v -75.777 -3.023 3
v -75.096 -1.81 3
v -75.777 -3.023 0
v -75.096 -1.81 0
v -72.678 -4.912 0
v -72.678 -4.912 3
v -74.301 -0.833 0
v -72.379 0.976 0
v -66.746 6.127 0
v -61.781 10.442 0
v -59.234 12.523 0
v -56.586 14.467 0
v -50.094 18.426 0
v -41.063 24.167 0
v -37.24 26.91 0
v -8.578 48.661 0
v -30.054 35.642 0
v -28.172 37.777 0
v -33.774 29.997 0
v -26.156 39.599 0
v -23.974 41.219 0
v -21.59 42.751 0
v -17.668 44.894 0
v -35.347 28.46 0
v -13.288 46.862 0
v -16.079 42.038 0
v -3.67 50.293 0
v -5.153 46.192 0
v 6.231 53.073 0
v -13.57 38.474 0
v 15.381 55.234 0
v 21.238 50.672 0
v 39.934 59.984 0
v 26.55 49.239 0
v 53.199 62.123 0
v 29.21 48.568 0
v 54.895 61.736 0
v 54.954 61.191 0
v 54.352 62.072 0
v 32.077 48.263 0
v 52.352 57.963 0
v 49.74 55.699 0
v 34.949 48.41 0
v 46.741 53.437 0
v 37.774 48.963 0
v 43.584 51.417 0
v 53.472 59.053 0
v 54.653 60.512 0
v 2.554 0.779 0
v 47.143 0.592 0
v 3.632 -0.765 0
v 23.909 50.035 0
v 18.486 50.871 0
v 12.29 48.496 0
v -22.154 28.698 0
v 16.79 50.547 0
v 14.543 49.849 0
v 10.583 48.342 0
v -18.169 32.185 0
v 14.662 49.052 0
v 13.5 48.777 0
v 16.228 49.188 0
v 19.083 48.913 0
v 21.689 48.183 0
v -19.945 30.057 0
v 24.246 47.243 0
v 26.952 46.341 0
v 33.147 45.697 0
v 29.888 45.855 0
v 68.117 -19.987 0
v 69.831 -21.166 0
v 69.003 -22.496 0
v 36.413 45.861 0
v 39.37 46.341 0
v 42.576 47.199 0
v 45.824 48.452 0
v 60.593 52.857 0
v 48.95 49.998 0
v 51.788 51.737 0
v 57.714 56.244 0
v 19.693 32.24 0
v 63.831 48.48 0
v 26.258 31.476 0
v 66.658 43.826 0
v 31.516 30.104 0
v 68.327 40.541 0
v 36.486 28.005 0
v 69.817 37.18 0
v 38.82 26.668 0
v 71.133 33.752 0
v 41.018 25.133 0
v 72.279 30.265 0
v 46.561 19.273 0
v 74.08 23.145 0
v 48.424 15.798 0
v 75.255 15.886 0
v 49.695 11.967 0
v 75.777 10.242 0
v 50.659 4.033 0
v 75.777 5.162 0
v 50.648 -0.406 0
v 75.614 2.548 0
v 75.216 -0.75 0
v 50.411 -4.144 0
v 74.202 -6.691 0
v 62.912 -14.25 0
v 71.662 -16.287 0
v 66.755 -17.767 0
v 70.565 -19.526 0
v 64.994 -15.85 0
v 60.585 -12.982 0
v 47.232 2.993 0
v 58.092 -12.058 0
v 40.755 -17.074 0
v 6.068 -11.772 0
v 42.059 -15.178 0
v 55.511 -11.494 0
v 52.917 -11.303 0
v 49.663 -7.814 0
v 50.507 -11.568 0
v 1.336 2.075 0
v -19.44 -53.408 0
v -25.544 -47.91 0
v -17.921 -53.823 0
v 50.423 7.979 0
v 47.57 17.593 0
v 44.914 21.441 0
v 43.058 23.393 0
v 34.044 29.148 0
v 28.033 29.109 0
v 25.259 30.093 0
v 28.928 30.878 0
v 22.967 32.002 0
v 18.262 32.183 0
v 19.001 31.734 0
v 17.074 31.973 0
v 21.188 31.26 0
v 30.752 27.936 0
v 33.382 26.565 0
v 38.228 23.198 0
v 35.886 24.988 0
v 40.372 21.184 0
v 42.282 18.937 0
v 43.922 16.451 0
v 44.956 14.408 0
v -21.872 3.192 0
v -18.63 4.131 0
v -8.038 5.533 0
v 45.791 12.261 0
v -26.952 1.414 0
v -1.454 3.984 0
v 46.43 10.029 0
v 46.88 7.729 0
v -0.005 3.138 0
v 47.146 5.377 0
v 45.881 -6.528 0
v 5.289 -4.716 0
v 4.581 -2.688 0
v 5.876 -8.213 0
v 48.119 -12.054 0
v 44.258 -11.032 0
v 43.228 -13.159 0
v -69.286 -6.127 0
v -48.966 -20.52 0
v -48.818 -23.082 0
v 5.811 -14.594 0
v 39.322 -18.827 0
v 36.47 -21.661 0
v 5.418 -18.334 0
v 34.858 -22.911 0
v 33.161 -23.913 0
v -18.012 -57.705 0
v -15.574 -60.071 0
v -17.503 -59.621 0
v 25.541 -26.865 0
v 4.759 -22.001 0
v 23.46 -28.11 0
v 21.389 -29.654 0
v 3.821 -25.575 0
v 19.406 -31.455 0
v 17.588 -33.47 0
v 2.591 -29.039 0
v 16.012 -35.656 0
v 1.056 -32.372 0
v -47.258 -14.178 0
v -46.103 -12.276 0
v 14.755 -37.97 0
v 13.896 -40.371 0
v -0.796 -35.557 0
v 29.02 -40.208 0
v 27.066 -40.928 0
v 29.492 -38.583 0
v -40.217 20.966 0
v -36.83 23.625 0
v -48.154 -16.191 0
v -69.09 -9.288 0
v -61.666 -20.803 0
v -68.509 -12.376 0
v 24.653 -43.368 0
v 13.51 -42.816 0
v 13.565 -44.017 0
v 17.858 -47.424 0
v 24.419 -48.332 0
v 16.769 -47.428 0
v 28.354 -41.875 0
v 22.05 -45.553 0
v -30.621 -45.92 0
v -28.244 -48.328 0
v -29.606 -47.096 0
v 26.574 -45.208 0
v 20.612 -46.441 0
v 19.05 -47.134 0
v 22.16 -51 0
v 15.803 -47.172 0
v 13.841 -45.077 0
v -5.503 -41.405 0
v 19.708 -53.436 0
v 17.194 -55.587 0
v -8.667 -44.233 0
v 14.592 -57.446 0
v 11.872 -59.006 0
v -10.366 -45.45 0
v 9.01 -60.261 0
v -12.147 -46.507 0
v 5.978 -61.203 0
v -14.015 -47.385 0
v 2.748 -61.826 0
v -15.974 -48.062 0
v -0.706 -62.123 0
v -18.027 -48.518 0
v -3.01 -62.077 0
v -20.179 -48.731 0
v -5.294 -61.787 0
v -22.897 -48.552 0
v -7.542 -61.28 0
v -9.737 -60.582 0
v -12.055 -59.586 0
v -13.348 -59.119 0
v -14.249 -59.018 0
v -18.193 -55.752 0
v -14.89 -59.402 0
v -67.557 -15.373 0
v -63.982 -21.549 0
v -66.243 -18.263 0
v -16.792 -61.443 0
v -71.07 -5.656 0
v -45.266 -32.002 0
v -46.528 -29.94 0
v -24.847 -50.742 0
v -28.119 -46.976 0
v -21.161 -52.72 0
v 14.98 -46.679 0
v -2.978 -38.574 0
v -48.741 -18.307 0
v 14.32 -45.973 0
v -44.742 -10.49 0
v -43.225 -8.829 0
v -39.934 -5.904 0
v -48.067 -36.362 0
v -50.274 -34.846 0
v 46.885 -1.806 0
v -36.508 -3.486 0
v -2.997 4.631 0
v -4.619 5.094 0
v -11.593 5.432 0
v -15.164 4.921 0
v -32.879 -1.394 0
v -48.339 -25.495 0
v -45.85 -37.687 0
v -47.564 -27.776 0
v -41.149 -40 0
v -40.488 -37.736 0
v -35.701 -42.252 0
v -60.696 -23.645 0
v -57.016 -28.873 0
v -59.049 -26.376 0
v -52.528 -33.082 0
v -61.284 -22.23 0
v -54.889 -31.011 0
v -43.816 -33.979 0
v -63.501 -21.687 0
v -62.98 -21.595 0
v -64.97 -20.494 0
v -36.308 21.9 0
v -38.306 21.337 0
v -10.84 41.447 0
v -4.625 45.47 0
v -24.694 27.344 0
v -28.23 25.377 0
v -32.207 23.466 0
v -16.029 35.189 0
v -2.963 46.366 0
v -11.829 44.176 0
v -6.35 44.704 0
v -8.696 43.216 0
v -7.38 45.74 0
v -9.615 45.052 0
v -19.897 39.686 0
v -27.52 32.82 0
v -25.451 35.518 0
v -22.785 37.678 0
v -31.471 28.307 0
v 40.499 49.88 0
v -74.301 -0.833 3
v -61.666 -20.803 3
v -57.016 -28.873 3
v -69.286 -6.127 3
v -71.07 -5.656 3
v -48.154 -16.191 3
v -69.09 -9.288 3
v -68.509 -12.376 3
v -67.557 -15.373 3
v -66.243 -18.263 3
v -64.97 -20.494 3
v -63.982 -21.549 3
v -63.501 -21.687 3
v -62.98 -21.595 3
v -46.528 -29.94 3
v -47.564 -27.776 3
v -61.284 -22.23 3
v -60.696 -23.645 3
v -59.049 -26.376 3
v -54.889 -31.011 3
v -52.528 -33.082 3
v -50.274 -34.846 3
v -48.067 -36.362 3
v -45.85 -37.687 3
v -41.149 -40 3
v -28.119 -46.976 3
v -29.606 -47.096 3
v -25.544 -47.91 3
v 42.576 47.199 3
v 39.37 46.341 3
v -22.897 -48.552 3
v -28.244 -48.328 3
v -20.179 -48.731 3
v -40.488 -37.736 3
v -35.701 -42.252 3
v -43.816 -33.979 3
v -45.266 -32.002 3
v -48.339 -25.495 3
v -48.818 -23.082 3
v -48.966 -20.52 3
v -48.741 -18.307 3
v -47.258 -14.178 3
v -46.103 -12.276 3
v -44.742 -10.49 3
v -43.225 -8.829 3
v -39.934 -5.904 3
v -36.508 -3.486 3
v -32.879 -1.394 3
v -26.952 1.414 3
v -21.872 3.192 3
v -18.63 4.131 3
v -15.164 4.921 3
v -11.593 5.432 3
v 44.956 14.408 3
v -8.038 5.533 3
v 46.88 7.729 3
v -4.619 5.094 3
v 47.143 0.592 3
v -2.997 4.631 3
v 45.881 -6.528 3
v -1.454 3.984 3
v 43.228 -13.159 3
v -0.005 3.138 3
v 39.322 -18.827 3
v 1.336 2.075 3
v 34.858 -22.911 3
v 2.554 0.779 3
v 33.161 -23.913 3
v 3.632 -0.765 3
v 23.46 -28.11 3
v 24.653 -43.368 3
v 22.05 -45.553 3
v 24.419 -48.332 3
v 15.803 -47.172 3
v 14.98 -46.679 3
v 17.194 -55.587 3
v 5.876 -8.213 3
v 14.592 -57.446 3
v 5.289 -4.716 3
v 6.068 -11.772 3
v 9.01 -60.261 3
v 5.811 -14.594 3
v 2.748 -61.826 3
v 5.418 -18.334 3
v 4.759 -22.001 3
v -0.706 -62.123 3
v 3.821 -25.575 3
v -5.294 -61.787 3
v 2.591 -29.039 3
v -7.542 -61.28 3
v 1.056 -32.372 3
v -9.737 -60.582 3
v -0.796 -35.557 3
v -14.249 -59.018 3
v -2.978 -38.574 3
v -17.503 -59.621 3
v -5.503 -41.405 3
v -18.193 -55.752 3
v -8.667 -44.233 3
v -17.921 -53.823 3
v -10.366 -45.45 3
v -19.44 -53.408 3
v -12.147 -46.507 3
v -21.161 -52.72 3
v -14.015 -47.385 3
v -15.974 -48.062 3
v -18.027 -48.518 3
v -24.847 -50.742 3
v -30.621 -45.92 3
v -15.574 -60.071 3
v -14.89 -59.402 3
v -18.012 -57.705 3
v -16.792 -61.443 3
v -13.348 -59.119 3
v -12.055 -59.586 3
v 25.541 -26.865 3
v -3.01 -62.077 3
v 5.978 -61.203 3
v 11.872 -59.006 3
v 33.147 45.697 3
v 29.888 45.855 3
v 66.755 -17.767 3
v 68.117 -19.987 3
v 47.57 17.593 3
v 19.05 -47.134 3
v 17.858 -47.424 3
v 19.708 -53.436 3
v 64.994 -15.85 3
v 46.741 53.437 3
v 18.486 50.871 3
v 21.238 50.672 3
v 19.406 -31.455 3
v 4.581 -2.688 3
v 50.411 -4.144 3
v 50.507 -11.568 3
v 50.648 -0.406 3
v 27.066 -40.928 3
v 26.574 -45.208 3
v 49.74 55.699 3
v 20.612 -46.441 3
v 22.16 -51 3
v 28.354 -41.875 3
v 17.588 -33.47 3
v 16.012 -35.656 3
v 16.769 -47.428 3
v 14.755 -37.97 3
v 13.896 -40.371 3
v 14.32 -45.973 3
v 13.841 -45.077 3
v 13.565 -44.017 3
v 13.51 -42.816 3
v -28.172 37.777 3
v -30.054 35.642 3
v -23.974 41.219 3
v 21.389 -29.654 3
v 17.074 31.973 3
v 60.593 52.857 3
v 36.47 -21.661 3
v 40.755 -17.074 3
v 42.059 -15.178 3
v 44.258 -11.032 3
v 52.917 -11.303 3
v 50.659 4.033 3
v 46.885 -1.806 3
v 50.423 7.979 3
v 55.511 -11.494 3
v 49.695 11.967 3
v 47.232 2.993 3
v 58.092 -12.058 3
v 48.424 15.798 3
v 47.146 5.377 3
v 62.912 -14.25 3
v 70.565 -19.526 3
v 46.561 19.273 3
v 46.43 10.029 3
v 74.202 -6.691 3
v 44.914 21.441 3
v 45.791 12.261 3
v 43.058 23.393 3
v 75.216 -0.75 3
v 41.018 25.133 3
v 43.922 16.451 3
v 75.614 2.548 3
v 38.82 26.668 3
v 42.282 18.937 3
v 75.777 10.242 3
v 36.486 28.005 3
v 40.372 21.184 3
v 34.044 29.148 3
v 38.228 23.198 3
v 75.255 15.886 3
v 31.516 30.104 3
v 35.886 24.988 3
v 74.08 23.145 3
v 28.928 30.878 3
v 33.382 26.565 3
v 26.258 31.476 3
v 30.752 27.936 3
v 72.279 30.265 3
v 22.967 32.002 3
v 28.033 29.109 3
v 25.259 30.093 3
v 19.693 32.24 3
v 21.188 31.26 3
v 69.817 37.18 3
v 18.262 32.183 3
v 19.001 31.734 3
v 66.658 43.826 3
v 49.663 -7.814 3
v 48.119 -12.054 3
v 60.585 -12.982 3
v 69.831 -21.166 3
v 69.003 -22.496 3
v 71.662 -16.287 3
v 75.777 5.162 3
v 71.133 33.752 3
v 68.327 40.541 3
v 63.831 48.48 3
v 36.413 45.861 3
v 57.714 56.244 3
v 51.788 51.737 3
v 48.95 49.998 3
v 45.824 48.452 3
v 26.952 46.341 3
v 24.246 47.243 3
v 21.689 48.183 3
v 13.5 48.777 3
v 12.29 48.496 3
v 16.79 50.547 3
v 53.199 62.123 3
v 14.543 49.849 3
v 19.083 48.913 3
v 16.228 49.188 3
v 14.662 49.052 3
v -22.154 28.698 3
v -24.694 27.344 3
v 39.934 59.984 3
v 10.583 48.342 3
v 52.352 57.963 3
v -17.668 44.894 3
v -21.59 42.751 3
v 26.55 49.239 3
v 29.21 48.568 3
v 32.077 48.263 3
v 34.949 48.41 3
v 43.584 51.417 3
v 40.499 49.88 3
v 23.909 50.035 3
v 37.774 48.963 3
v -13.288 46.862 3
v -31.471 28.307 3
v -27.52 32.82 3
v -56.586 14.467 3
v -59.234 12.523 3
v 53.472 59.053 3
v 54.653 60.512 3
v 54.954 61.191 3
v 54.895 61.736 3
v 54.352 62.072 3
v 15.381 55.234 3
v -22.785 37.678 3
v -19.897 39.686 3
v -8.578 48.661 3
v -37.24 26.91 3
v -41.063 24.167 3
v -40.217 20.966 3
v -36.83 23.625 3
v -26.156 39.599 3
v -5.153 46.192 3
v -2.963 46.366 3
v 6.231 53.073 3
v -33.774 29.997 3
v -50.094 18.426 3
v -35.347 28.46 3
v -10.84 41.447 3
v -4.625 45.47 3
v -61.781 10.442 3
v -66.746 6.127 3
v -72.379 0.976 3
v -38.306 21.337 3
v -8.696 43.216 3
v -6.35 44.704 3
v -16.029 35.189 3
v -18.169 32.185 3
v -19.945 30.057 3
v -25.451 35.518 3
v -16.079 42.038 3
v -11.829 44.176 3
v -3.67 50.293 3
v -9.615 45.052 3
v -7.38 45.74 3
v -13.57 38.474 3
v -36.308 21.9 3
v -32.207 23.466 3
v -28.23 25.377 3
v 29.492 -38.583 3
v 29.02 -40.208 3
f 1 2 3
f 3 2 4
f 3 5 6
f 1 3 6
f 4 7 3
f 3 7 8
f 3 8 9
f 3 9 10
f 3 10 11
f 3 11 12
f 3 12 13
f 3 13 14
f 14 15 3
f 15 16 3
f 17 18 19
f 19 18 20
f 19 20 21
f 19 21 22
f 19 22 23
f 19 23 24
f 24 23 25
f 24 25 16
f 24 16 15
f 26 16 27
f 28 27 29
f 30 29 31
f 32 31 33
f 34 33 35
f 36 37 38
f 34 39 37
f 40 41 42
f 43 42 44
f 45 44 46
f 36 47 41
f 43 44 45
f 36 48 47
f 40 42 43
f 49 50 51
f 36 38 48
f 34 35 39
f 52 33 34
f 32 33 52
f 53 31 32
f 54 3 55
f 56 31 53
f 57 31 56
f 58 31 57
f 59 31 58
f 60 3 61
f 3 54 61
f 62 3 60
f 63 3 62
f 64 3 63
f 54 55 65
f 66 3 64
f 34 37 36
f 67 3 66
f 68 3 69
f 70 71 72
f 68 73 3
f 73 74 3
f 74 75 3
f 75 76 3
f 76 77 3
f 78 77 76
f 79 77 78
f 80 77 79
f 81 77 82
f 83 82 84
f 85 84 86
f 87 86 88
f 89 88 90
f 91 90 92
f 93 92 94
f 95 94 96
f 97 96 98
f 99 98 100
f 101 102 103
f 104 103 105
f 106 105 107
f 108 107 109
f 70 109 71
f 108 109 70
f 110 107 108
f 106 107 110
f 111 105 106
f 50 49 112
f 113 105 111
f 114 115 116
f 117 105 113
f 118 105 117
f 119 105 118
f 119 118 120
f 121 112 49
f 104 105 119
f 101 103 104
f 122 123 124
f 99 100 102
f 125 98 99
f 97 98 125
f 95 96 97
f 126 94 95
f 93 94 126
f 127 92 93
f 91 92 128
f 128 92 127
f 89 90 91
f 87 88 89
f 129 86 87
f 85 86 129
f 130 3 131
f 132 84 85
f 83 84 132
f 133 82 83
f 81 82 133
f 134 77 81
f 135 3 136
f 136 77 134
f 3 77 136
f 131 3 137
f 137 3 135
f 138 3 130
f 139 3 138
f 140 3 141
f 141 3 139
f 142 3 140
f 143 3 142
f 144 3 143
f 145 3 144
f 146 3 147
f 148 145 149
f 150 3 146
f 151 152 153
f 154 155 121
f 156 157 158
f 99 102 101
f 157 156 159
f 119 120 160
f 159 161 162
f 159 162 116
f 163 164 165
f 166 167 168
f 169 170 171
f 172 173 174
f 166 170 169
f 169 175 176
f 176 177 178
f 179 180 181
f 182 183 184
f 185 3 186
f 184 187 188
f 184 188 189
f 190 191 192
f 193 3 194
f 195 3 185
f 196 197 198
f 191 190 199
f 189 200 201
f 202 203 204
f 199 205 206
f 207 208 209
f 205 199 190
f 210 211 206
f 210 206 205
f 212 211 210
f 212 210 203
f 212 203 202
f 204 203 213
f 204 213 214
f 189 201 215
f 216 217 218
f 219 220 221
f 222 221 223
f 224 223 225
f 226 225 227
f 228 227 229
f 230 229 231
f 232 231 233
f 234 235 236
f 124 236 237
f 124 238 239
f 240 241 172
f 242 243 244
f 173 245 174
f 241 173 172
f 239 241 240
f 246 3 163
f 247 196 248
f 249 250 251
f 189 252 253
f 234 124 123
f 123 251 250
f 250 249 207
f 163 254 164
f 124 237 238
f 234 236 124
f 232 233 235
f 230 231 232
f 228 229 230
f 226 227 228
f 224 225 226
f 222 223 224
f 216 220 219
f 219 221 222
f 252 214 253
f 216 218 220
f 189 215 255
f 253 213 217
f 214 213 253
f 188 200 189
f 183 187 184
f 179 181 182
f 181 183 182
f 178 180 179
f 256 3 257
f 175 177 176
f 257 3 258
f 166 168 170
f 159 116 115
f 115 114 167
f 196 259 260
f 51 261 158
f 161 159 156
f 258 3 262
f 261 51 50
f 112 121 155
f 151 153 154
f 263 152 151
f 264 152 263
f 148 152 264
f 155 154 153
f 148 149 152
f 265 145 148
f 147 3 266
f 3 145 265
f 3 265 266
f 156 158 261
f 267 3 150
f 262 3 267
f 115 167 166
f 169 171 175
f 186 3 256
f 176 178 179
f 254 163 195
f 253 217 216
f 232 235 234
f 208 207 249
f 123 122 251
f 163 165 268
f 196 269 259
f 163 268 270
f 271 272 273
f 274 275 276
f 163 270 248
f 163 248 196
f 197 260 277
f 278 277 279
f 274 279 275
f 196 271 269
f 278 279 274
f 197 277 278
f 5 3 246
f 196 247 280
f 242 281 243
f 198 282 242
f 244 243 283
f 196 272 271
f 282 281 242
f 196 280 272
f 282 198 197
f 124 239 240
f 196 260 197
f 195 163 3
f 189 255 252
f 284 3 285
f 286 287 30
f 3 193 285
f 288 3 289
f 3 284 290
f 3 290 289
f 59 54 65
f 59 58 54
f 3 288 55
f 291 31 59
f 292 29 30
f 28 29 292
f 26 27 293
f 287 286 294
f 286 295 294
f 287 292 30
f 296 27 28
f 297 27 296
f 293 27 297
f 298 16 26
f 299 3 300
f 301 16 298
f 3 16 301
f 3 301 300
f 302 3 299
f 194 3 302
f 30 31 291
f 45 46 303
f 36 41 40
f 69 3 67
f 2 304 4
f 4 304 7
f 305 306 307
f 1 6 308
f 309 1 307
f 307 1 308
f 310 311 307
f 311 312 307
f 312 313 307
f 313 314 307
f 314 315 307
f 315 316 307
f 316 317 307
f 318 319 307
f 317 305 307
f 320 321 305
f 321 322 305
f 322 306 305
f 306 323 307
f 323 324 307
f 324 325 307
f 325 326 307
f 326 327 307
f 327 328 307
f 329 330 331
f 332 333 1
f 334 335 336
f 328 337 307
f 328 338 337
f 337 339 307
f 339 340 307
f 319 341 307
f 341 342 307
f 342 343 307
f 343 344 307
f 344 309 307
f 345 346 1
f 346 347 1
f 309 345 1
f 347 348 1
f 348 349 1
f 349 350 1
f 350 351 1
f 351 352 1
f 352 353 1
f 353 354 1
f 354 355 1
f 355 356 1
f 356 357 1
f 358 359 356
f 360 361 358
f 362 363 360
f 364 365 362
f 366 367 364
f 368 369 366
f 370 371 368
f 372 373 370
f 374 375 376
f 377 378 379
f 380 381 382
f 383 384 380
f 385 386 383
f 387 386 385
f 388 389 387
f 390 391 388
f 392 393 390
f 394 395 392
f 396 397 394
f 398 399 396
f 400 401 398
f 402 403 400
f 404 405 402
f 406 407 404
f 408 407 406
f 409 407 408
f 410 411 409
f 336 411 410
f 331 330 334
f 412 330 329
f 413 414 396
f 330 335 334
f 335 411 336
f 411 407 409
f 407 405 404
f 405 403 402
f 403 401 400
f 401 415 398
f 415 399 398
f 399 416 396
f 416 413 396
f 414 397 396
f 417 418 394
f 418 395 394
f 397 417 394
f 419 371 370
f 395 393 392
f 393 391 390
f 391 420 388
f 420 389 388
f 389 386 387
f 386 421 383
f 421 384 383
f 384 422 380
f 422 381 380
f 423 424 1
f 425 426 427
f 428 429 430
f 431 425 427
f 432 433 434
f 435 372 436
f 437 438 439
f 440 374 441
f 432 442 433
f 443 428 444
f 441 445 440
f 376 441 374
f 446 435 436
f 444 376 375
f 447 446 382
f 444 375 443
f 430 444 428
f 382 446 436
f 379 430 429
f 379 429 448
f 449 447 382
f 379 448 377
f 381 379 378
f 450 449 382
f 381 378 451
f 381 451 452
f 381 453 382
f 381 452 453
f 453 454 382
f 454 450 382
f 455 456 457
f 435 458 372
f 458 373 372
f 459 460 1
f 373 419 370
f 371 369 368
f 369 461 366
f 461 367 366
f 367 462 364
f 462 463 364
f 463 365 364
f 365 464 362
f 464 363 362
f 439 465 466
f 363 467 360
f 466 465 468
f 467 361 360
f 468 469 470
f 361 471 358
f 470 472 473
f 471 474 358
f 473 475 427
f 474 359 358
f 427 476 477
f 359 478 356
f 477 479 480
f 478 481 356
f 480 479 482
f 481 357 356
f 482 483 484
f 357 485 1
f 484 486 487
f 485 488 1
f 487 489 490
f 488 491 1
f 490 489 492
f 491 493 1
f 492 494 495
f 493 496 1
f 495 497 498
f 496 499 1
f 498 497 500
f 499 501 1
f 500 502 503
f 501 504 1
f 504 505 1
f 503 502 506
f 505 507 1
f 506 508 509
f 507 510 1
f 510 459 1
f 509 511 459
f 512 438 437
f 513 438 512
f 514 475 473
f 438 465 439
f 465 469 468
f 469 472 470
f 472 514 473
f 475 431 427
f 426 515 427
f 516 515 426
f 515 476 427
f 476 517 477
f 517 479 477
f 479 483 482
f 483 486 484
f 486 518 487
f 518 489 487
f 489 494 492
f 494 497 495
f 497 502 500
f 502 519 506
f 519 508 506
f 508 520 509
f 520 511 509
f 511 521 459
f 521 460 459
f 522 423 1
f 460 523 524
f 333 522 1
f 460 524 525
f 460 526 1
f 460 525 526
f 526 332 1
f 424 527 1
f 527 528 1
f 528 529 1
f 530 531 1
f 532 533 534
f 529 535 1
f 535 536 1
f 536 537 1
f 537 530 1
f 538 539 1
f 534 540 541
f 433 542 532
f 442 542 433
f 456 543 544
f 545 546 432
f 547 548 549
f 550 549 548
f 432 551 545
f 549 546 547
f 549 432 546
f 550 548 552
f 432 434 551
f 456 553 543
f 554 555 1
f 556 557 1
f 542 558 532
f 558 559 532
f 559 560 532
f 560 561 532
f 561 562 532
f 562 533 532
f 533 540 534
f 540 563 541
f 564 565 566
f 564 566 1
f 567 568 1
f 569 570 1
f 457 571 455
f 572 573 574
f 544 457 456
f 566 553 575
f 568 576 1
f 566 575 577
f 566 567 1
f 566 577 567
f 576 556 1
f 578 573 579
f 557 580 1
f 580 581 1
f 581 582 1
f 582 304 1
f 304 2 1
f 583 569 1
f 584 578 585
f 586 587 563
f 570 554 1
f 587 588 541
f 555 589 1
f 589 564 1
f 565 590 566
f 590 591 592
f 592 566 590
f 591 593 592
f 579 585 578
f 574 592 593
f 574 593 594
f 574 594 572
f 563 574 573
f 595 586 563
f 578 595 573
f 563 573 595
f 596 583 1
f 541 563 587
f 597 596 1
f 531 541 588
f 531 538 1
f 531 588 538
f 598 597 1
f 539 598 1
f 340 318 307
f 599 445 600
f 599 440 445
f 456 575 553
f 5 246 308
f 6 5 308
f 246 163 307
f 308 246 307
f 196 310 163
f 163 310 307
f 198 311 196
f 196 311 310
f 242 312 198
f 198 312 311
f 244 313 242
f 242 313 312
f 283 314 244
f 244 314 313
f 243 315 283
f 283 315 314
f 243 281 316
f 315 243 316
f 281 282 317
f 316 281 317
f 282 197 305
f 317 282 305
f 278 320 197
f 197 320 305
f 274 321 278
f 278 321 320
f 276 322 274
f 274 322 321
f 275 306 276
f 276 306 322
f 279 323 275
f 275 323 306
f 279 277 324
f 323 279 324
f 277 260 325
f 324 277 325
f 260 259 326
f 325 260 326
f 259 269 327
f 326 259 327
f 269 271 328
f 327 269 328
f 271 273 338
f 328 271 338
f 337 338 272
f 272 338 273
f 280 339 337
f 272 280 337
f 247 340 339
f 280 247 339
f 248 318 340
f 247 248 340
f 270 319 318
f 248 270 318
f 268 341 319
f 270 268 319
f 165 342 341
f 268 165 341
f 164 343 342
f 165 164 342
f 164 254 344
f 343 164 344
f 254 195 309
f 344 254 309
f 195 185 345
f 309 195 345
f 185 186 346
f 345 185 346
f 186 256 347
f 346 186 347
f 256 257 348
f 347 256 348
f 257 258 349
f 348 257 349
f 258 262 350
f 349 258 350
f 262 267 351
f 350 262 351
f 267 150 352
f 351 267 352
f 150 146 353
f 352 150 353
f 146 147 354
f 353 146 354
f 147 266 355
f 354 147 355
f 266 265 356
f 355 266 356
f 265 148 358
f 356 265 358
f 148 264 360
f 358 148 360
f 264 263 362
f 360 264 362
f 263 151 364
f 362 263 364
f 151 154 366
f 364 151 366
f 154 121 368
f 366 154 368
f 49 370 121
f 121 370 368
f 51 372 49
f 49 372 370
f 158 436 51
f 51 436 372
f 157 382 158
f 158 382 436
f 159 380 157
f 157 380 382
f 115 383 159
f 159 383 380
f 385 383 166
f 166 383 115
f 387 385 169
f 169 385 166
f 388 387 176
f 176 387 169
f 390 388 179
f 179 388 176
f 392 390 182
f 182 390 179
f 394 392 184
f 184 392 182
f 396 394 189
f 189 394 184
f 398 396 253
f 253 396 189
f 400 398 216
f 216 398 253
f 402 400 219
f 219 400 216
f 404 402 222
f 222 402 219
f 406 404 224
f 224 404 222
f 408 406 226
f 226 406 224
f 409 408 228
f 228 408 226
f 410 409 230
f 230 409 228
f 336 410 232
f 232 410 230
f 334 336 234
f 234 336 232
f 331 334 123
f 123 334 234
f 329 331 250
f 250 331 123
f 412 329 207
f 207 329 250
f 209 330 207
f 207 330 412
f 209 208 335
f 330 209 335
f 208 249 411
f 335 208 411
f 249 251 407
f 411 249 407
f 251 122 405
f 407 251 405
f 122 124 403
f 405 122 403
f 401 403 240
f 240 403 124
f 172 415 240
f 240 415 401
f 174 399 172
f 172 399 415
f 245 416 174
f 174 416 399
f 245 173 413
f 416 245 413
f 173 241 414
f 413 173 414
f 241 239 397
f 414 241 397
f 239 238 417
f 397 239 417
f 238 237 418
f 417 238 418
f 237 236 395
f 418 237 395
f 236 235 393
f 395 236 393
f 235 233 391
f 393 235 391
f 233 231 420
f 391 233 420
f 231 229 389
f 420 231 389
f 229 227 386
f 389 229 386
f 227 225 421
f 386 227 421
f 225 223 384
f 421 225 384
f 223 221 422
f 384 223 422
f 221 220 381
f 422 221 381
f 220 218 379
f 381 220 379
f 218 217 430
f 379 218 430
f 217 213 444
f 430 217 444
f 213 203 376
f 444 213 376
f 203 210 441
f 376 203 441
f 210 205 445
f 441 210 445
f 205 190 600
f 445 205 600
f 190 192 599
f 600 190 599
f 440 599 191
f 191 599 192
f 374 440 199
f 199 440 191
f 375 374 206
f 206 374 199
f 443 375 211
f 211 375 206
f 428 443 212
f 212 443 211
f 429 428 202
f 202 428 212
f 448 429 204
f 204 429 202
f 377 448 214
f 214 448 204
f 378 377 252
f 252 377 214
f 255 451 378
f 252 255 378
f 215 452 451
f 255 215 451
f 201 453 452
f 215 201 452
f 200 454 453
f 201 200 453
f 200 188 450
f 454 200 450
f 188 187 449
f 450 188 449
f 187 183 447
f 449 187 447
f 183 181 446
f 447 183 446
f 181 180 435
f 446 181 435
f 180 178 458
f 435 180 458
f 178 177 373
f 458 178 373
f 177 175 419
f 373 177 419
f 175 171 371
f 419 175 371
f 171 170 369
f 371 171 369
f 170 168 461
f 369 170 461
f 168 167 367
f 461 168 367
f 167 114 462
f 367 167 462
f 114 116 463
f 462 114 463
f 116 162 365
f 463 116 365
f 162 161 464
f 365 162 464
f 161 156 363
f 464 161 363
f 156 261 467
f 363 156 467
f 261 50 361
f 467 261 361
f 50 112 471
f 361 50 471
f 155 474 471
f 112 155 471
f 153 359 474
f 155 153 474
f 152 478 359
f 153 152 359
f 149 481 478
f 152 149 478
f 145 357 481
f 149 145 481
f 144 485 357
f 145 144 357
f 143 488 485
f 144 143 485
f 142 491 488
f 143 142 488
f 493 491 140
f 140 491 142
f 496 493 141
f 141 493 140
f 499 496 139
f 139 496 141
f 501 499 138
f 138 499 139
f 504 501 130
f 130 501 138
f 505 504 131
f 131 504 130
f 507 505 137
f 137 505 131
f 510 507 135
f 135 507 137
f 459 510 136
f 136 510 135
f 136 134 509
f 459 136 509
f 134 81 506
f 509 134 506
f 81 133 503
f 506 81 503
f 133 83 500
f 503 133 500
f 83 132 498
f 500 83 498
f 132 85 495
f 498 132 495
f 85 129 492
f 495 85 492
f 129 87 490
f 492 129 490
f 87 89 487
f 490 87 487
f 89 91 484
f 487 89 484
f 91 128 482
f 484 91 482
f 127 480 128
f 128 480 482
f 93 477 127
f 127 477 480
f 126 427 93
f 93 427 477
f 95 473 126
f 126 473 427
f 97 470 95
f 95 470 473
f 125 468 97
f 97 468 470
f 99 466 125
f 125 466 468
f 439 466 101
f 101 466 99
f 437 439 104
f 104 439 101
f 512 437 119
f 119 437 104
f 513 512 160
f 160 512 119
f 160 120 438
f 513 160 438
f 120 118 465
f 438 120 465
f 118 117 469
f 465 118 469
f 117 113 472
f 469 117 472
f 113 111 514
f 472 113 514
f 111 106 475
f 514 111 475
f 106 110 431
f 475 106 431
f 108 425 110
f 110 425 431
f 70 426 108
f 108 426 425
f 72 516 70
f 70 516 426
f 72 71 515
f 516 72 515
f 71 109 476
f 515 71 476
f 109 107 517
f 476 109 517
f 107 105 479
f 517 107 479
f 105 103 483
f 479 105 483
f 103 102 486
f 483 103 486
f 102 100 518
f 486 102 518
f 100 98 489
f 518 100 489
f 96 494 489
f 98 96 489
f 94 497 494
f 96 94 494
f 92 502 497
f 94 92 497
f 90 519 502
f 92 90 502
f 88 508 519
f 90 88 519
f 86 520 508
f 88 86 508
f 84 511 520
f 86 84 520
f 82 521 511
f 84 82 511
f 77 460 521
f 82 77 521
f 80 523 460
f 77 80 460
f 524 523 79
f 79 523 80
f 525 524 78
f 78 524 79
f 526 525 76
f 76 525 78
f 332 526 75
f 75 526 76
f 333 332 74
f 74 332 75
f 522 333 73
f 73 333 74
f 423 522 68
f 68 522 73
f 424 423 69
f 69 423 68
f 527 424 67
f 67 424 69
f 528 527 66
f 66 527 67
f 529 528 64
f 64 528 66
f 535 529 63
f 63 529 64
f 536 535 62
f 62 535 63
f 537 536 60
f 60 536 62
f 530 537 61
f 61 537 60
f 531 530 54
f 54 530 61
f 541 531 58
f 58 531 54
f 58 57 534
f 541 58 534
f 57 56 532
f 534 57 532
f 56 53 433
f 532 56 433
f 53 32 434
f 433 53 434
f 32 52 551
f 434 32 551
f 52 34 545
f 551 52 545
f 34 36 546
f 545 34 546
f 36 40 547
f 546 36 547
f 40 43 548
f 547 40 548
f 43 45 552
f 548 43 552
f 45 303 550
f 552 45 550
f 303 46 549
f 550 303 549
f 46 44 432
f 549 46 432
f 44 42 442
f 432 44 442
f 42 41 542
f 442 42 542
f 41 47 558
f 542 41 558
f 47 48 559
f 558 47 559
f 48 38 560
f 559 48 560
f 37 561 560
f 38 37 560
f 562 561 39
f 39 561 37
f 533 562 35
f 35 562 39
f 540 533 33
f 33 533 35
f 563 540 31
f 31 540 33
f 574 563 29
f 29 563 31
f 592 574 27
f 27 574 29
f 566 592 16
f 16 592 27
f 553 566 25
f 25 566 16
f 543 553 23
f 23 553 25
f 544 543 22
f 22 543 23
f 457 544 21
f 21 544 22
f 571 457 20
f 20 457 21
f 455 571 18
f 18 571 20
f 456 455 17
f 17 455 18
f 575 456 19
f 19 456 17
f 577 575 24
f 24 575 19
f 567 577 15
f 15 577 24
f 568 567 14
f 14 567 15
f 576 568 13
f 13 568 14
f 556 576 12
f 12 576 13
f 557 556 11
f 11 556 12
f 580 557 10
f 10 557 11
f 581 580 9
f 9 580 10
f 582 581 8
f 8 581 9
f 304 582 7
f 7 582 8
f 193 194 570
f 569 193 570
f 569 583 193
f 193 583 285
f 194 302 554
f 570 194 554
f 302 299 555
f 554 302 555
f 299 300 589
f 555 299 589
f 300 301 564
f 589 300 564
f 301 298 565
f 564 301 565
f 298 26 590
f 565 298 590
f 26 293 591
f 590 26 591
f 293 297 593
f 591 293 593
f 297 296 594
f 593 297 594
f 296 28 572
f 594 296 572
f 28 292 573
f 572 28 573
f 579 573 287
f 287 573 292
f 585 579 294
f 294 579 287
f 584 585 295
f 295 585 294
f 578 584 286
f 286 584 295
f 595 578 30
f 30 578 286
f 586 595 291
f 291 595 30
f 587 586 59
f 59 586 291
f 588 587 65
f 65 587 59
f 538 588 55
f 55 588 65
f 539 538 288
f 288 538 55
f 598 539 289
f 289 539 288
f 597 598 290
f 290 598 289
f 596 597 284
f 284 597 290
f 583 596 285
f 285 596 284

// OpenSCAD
// Module names are of the form poly_<inkscape-path-id>().  As a result,
// you can associate a polygon in this OpenSCAD program with the corresponding
// SVG element in the Inkscape document by looking for the XML element with
// the attribute id="inkscape-path-id".

// fudge value is used to ensure that subtracted solids are a tad taller
// in the z dimension than the polygon being subtracted from.  This helps
// keep the resulting .stl file manifold.
fudge = 0.1;

module thundercatsLogo(h)
{
  scale([25.4/90, -25.4/90, 1]) union()
  {
    difference()
    {
       linear_extrude(height=h)
         polygon([[-256.460000,-3.460000],[-236.500000,-21.710000],[-218.908750,-36.998750],[-209.883906,-44.371719],[-200.500000,-51.260000],[-177.500000,-65.290000],[-145.500000,-85.630000],[-131.951250,-95.348750],[-125.245781,-100.841406],[-119.670000,-106.290000],[-106.490000,-126.290000],[-99.821250,-133.856875],[-92.680000,-140.310000],[-84.946250,-146.050625],[-76.500000,-151.480000],[-62.602344,-159.072246],[-47.081875,-166.047969],[-30.396094,-172.420645],[-13.002500,-178.203750],[22.078125,-188.055156],[54.500000,-195.710000],[141.500000,-212.540000],[188.500000,-220.120000],[192.585859,-219.939043],[194.511250,-218.749219],[194.719141,-216.817598],[193.652500,-214.411250],[189.467500,-209.242656],[185.500000,-205.380000],[176.243125,-197.358437],[165.617500,-189.342500],[154.433125,-182.185312],[143.500000,-176.740000],[133.842656,-173.492031],[123.833750,-171.531250],[113.657969,-171.012344],[103.500000,-172.090000],[94.075000,-174.470312],[84.717500,-177.287500],[75.251250,-179.545937],[65.500000,-180.250000],[59.490937,-179.104531],[51.530000,-176.628750],[37.500000,-171.290000],[43.548594,-171.836094],[47.833750,-172.831250],[51.952031,-173.805781],[57.500000,-174.290000],[67.616875,-173.313906],[76.852500,-170.726250],[85.911875,-167.397969],[95.500000,-164.200000],[105.903281,-162.478750],[117.451250,-161.920000],[129.023594,-162.501250],[139.500000,-164.200000],[150.860937,-167.239531],[162.370000,-171.678750],[173.444062,-177.158594],[183.500000,-183.320000],[204.500000,-199.290000],[214.700000,-187.290000],[226.172500,-171.781250],[236.190000,-155.290000],[242.101602,-143.649180],[247.381562,-131.740937],[252.045117,-119.594102],[256.107500,-107.237500],[262.489687,-82.010312],[266.650000,-56.290000],[268.500000,-36.290000],[268.500000,-18.290000],[267.923437,-9.027500],[266.512500,2.657500],[262.920000,23.710000],[253.920000,57.710000],[250.035000,69.186250],[247.431563,74.997031],[244.500000,79.710000],[241.360078,70.819512],[236.533125,62.953594],[230.293359,56.161816],[222.915000,50.493750],[214.672266,45.998965],[205.839375,42.727031],[196.690547,40.727520],[187.500000,40.050000],[178.962500,40.990000],[170.500000,42.710000],[175.970313,27.689375],[178.622500,14.682500],[179.463438,1.439375],[179.500000,-14.290000],[178.664219,-28.272344],[176.083750,-42.403750],[171.581406,-55.978281],[168.554160,-62.336113],[164.980000,-68.290000],[159.143672,-75.972559],[152.568125,-82.886719],[145.341016,-89.053457],[137.550000,-94.493750],[129.282734,-99.228574],[120.626875,-103.278906],[111.670078,-106.665723],[102.500000,-109.410000],[93.040625,-111.530781],[81.380000,-113.393750],[69.779375,-114.234844],[64.708203,-114.033418],[60.500000,-113.290000],[67.326250,-112.443437],[75.075000,-110.762500],[89.500000,-106.630000],[99.328125,-103.141133],[108.965000,-98.984062],[118.283125,-94.128086],[127.155000,-88.542500],[135.453125,-82.196602],[143.050000,-75.059687],[149.818125,-67.101055],[155.630000,-58.290000],[159.294026,-51.051133],[162.250488,-43.445938],[164.517214,-35.536523],[166.112031,-27.385000],[167.052766,-19.053477],[167.357246,-10.604062],[167.043298,-2.098867],[166.128750,6.400000],[162.569160,23.130312],[156.821094,39.090000],[153.170950,46.625586],[149.027168,53.782188],[144.407576,60.497695],[139.330000,66.710000],[129.225000,76.751250],[123.512500,81.181719],[117.500000,84.730000],[90.500000,95.190000],[83.125801,99.602520],[75.788281,105.074531],[68.761309,111.455215],[62.318750,118.593750],[56.734473,126.339316],[52.282344,134.541094],[49.236230,143.048262],[47.870000,151.710000],[48.064609,155.966133],[49.044375,159.722813],[50.739453,162.894961],[53.080000,165.397500],[55.996172,167.145352],[59.418125,168.053438],[63.276016,168.036680],[67.500000,167.010000],[73.035137,164.554688],[78.128594,161.409375],[87.353750,153.667500],[95.902031,145.021875],[104.500000,136.710000],[102.826680,142.470449],[100.465937,148.376094],[94.157500,160.183750],[86.525312,171.254531],[78.520000,180.710000],[69.832148,189.340781],[60.924688,196.961875],[51.701758,203.548906],[42.067500,209.077500],[31.926055,213.523281],[21.181562,216.861875],[9.738164,219.068906],[-2.500000,220.120000],[-10.665469,219.957344],[-18.758750,218.931250],[-26.722656,217.134531],[-34.500000,214.660000],[-42.716250,211.132500],[-47.298281,209.476563],[-50.490000,209.120000],[-52.758438,210.480469],[-55.182500,212.848750],[-59.500000,217.710000],[-62.019219,211.255313],[-63.821250,204.465000],[-64.462656,197.547188],[-63.500000,190.710000],[-68.880547,189.241094],[-74.980625,186.801875],[-88.040000,179.792500],[-100.079375,171.241875],[-104.904453,166.876094],[-108.500000,162.710000],[-99.633438,166.451563],[-90.510000,169.760000],[-81.131562,172.033438],[-71.500000,172.670000],[-63.875352,171.913008],[-56.599688,170.298437],[-49.659180,167.899648],[-43.040000,164.790000],[-36.728320,161.042852],[-30.710312,156.731563],[-19.500000,146.710000],[-10.552480,136.679063],[-2.819844,125.988125],[3.743027,114.703750],[9.181250,102.892500],[13.539941,90.620938],[16.864219,77.955625],[19.199199,64.963125],[20.590000,51.710000],[21.500000,41.710000],[20.821250,29.101250],[18.740000,16.710000],[16.232500,9.526250],[12.870000,2.710000],[9.048096,-2.762307],[4.735234,-7.352676],[-0.015557,-11.118777],[-5.151250,-14.118281],[-10.618818,-16.408860],[-16.365234,-18.048184],[-28.482500,-19.603750],[-41.078828,-19.246348],[-53.730000,-17.437344],[-66.011797,-14.638105],[-77.500000,-11.310000],[-95.500000,-5.010000],[-116.500000,4.940000],[-129.360000,12.352500],[-141.500000,20.920000],[-153.160000,31.283281],[-158.533203,37.170449],[-163.357500,43.496250],[-167.449609,50.236895],[-170.626250,57.368594],[-172.704141,64.867559],[-173.500000,72.710000],[-172.978672,81.785723],[-171.281250,90.337031],[-168.533828,98.418887],[-164.862500,106.086250],[-160.393359,113.394082],[-155.252500,120.397344],[-143.460000,133.710000],[-126.500000,149.710000],[-145.802813,141.731563],[-162.460000,133.537500],[-170.316211,128.842227],[-178.134688,123.472188],[-186.123320,117.220430],[-194.490000,109.880000],[-202.025781,102.304688],[-209.228750,93.460000],[-215.064844,83.782813],[-217.147168,78.768555],[-218.500000,73.710000],[-223.157813,76.518281],[-225.004961,76.845059],[-226.707500,76.353750],[-230.208438,72.617344],[-234.720000,64.710000],[-239.374375,54.471406],[-242.750000,43.851250],[-244.805625,32.910469],[-245.500000,21.710000],[-251.823281,20.041875],[-257.521250,17.402500],[-268.500000,10.710000],[-266.088594,6.411875],[-263.271250,2.950000],[-256.460000,-3.460000]]);
       translate([0, 0, -fudge])
         linear_extrude(height=h+2*fudge)
           polygon([[-70.500000,-140.620000],[-80.733750,-133.505000],[-90.180000,-125.850000],[-97.510000,-116.290000],[-111.510000,-100.300000],[-130.500000,-83.710000],[-142.500000,-74.290000],[-135.731230,-75.601934],[-128.651094,-77.600469],[-114.118750,-83.148750],[-100.027031,-89.917656],[-87.500000,-96.890000],[-78.500000,-101.683750],[-70.670000,-106.500000],[-64.379219,-114.040937],[-56.793750,-124.685000],[-48.081406,-136.326562],[-38.410000,-146.860000],[-30.811250,-153.128750],[-22.500000,-158.400000],[-16.387500,-161.116250],[-10.500000,-164.290000],[-18.257988,-163.674473],[-26.148281,-162.069531],[-34.067871,-159.635137],[-41.913750,-156.531250],[-56.972344,-148.954844],[-70.500000,-140.620000]]);
    }
  }
}


thundercatsLogo(3);
